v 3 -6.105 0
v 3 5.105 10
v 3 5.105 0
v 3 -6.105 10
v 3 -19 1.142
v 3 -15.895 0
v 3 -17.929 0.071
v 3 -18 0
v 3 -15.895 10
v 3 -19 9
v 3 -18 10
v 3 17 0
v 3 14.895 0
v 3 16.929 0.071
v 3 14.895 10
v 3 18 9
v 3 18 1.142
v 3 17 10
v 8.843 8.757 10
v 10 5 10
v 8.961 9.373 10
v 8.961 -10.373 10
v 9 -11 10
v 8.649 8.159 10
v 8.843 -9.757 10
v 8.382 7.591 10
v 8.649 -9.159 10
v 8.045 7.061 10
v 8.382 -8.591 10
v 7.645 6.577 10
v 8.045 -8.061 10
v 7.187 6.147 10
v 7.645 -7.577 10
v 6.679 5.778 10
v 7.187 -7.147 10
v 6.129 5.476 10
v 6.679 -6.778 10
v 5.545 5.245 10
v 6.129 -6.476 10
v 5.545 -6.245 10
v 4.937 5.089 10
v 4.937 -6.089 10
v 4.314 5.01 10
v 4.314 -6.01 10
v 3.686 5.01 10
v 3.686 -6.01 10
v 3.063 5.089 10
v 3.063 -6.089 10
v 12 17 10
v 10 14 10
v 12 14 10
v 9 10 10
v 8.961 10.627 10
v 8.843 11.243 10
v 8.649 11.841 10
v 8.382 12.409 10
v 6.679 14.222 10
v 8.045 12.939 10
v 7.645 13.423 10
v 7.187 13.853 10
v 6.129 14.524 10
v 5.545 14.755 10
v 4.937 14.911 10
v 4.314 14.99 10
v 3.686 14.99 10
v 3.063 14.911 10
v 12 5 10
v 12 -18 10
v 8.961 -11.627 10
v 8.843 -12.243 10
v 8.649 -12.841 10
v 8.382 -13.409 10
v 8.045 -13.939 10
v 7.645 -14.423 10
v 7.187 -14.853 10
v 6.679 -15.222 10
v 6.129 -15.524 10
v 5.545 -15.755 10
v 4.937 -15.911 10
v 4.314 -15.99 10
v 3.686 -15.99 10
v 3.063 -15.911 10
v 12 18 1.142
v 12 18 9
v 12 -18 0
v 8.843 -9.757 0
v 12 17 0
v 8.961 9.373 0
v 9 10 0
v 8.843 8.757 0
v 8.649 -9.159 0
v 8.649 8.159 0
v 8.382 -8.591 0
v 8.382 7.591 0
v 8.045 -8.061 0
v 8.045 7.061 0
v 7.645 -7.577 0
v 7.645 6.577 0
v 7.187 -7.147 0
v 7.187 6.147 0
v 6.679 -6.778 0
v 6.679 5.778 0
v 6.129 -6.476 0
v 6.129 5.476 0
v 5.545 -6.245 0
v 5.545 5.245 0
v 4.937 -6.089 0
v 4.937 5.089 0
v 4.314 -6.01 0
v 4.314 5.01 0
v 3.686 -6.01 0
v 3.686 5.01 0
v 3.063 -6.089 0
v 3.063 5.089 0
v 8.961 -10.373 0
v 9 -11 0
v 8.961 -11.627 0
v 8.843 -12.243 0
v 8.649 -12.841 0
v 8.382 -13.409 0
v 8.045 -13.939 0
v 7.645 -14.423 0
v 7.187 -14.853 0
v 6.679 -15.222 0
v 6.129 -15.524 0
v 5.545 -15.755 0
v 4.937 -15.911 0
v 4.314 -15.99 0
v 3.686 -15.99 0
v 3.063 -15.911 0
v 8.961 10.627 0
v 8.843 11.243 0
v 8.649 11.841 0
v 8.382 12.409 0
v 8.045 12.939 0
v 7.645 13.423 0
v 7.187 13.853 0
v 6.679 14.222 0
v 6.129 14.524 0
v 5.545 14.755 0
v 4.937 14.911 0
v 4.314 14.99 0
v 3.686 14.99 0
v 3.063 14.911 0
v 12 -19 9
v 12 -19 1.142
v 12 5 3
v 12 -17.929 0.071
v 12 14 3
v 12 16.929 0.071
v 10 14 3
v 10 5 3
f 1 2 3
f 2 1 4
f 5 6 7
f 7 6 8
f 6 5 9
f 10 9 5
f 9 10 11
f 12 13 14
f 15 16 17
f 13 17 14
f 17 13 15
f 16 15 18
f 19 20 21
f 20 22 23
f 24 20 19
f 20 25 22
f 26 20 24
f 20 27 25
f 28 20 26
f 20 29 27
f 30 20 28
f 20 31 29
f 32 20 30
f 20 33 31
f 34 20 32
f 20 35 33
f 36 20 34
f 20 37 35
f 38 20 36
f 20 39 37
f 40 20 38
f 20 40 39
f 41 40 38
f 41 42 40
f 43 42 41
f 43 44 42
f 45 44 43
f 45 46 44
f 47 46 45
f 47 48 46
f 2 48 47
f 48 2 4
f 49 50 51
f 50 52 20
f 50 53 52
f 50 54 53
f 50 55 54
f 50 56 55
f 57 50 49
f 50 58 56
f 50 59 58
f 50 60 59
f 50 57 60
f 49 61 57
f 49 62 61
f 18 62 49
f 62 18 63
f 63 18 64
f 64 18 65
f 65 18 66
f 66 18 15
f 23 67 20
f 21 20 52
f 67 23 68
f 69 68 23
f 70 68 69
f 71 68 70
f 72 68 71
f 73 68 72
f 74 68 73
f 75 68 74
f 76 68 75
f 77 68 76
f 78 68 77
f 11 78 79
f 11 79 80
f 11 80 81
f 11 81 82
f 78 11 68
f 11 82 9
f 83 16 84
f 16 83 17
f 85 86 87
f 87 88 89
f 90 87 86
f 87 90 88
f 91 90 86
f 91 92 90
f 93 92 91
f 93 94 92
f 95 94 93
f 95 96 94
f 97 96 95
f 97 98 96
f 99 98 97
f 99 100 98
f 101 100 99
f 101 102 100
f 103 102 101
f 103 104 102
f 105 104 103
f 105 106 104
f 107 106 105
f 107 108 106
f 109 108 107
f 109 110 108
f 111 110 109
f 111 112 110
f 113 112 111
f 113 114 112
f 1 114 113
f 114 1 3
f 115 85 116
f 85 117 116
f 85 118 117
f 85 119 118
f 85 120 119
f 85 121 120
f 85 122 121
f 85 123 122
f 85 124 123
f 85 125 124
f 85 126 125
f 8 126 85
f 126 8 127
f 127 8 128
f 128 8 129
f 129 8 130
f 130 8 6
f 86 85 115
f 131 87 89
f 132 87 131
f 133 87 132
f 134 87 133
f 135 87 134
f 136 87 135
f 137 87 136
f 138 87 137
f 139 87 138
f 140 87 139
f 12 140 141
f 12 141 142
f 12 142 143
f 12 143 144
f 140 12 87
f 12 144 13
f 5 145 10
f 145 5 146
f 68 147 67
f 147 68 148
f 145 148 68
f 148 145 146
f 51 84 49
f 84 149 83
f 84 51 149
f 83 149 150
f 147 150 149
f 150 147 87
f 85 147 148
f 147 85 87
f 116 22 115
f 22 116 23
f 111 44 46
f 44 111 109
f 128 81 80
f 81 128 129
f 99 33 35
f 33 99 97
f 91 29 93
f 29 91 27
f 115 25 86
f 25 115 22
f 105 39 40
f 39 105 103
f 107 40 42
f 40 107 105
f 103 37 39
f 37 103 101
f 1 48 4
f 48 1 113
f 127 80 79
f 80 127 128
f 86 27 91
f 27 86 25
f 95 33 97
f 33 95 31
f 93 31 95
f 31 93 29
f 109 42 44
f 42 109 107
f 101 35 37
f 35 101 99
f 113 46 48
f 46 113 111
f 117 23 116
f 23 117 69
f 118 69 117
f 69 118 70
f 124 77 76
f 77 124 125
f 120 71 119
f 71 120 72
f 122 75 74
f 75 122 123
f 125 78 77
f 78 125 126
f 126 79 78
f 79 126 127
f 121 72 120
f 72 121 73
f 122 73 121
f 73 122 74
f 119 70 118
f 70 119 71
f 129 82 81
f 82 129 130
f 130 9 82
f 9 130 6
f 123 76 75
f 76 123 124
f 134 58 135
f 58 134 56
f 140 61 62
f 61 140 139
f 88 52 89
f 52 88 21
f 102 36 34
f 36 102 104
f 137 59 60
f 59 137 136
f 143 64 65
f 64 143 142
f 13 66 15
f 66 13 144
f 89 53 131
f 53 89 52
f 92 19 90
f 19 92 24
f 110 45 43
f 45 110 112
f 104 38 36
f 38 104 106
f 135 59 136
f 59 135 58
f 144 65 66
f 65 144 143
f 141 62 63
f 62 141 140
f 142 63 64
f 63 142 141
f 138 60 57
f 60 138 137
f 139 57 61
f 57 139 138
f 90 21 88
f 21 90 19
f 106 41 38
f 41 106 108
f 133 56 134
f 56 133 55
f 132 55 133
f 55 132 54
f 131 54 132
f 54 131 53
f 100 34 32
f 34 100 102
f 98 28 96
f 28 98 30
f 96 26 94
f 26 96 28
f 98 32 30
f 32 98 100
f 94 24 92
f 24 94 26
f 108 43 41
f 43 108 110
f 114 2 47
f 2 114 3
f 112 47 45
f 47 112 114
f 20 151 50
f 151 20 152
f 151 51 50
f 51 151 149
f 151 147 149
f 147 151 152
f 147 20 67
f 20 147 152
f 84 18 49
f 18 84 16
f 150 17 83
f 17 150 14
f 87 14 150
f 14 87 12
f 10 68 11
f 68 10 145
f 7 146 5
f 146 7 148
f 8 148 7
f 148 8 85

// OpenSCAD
// PRUSA iteration3
// X carriage
// GNU GPL v3
// Josef Průša <iam@josefprusa.cz> and contributors
// http://www.reprap.org/wiki/Prusa_Mendel
// http://prusamendel.org

difference()
{

//body
union()
{
    translate([3,-19,0]) cube([5,37,10]);
    translate([8,-19,0]) cube([4,37,10]);
}


union()
{
    //rods
    translate(v = [4,-11,-1]) cylinder(h = 12, r=5, $fn=50);	
    translate(v = [4,10,-1]) cylinder(h = 12, r=5, $fn=50);
    //cables
    translate([10,5,3]) cube([8,9,10]);
}

        //corners
        translate([-5,24,3]) rotate([45,0,0]) cube([20,10,10]);
        translate([-5,24,-7]) rotate([45,0,0]) cube([20,10,10]);
        translate([-5,-25,3]) rotate([45,0,0]) cube([20,10,10]);
        translate([-5,-25,-7]) rotate([45,0,0]) cube([20,10,10]);
}
